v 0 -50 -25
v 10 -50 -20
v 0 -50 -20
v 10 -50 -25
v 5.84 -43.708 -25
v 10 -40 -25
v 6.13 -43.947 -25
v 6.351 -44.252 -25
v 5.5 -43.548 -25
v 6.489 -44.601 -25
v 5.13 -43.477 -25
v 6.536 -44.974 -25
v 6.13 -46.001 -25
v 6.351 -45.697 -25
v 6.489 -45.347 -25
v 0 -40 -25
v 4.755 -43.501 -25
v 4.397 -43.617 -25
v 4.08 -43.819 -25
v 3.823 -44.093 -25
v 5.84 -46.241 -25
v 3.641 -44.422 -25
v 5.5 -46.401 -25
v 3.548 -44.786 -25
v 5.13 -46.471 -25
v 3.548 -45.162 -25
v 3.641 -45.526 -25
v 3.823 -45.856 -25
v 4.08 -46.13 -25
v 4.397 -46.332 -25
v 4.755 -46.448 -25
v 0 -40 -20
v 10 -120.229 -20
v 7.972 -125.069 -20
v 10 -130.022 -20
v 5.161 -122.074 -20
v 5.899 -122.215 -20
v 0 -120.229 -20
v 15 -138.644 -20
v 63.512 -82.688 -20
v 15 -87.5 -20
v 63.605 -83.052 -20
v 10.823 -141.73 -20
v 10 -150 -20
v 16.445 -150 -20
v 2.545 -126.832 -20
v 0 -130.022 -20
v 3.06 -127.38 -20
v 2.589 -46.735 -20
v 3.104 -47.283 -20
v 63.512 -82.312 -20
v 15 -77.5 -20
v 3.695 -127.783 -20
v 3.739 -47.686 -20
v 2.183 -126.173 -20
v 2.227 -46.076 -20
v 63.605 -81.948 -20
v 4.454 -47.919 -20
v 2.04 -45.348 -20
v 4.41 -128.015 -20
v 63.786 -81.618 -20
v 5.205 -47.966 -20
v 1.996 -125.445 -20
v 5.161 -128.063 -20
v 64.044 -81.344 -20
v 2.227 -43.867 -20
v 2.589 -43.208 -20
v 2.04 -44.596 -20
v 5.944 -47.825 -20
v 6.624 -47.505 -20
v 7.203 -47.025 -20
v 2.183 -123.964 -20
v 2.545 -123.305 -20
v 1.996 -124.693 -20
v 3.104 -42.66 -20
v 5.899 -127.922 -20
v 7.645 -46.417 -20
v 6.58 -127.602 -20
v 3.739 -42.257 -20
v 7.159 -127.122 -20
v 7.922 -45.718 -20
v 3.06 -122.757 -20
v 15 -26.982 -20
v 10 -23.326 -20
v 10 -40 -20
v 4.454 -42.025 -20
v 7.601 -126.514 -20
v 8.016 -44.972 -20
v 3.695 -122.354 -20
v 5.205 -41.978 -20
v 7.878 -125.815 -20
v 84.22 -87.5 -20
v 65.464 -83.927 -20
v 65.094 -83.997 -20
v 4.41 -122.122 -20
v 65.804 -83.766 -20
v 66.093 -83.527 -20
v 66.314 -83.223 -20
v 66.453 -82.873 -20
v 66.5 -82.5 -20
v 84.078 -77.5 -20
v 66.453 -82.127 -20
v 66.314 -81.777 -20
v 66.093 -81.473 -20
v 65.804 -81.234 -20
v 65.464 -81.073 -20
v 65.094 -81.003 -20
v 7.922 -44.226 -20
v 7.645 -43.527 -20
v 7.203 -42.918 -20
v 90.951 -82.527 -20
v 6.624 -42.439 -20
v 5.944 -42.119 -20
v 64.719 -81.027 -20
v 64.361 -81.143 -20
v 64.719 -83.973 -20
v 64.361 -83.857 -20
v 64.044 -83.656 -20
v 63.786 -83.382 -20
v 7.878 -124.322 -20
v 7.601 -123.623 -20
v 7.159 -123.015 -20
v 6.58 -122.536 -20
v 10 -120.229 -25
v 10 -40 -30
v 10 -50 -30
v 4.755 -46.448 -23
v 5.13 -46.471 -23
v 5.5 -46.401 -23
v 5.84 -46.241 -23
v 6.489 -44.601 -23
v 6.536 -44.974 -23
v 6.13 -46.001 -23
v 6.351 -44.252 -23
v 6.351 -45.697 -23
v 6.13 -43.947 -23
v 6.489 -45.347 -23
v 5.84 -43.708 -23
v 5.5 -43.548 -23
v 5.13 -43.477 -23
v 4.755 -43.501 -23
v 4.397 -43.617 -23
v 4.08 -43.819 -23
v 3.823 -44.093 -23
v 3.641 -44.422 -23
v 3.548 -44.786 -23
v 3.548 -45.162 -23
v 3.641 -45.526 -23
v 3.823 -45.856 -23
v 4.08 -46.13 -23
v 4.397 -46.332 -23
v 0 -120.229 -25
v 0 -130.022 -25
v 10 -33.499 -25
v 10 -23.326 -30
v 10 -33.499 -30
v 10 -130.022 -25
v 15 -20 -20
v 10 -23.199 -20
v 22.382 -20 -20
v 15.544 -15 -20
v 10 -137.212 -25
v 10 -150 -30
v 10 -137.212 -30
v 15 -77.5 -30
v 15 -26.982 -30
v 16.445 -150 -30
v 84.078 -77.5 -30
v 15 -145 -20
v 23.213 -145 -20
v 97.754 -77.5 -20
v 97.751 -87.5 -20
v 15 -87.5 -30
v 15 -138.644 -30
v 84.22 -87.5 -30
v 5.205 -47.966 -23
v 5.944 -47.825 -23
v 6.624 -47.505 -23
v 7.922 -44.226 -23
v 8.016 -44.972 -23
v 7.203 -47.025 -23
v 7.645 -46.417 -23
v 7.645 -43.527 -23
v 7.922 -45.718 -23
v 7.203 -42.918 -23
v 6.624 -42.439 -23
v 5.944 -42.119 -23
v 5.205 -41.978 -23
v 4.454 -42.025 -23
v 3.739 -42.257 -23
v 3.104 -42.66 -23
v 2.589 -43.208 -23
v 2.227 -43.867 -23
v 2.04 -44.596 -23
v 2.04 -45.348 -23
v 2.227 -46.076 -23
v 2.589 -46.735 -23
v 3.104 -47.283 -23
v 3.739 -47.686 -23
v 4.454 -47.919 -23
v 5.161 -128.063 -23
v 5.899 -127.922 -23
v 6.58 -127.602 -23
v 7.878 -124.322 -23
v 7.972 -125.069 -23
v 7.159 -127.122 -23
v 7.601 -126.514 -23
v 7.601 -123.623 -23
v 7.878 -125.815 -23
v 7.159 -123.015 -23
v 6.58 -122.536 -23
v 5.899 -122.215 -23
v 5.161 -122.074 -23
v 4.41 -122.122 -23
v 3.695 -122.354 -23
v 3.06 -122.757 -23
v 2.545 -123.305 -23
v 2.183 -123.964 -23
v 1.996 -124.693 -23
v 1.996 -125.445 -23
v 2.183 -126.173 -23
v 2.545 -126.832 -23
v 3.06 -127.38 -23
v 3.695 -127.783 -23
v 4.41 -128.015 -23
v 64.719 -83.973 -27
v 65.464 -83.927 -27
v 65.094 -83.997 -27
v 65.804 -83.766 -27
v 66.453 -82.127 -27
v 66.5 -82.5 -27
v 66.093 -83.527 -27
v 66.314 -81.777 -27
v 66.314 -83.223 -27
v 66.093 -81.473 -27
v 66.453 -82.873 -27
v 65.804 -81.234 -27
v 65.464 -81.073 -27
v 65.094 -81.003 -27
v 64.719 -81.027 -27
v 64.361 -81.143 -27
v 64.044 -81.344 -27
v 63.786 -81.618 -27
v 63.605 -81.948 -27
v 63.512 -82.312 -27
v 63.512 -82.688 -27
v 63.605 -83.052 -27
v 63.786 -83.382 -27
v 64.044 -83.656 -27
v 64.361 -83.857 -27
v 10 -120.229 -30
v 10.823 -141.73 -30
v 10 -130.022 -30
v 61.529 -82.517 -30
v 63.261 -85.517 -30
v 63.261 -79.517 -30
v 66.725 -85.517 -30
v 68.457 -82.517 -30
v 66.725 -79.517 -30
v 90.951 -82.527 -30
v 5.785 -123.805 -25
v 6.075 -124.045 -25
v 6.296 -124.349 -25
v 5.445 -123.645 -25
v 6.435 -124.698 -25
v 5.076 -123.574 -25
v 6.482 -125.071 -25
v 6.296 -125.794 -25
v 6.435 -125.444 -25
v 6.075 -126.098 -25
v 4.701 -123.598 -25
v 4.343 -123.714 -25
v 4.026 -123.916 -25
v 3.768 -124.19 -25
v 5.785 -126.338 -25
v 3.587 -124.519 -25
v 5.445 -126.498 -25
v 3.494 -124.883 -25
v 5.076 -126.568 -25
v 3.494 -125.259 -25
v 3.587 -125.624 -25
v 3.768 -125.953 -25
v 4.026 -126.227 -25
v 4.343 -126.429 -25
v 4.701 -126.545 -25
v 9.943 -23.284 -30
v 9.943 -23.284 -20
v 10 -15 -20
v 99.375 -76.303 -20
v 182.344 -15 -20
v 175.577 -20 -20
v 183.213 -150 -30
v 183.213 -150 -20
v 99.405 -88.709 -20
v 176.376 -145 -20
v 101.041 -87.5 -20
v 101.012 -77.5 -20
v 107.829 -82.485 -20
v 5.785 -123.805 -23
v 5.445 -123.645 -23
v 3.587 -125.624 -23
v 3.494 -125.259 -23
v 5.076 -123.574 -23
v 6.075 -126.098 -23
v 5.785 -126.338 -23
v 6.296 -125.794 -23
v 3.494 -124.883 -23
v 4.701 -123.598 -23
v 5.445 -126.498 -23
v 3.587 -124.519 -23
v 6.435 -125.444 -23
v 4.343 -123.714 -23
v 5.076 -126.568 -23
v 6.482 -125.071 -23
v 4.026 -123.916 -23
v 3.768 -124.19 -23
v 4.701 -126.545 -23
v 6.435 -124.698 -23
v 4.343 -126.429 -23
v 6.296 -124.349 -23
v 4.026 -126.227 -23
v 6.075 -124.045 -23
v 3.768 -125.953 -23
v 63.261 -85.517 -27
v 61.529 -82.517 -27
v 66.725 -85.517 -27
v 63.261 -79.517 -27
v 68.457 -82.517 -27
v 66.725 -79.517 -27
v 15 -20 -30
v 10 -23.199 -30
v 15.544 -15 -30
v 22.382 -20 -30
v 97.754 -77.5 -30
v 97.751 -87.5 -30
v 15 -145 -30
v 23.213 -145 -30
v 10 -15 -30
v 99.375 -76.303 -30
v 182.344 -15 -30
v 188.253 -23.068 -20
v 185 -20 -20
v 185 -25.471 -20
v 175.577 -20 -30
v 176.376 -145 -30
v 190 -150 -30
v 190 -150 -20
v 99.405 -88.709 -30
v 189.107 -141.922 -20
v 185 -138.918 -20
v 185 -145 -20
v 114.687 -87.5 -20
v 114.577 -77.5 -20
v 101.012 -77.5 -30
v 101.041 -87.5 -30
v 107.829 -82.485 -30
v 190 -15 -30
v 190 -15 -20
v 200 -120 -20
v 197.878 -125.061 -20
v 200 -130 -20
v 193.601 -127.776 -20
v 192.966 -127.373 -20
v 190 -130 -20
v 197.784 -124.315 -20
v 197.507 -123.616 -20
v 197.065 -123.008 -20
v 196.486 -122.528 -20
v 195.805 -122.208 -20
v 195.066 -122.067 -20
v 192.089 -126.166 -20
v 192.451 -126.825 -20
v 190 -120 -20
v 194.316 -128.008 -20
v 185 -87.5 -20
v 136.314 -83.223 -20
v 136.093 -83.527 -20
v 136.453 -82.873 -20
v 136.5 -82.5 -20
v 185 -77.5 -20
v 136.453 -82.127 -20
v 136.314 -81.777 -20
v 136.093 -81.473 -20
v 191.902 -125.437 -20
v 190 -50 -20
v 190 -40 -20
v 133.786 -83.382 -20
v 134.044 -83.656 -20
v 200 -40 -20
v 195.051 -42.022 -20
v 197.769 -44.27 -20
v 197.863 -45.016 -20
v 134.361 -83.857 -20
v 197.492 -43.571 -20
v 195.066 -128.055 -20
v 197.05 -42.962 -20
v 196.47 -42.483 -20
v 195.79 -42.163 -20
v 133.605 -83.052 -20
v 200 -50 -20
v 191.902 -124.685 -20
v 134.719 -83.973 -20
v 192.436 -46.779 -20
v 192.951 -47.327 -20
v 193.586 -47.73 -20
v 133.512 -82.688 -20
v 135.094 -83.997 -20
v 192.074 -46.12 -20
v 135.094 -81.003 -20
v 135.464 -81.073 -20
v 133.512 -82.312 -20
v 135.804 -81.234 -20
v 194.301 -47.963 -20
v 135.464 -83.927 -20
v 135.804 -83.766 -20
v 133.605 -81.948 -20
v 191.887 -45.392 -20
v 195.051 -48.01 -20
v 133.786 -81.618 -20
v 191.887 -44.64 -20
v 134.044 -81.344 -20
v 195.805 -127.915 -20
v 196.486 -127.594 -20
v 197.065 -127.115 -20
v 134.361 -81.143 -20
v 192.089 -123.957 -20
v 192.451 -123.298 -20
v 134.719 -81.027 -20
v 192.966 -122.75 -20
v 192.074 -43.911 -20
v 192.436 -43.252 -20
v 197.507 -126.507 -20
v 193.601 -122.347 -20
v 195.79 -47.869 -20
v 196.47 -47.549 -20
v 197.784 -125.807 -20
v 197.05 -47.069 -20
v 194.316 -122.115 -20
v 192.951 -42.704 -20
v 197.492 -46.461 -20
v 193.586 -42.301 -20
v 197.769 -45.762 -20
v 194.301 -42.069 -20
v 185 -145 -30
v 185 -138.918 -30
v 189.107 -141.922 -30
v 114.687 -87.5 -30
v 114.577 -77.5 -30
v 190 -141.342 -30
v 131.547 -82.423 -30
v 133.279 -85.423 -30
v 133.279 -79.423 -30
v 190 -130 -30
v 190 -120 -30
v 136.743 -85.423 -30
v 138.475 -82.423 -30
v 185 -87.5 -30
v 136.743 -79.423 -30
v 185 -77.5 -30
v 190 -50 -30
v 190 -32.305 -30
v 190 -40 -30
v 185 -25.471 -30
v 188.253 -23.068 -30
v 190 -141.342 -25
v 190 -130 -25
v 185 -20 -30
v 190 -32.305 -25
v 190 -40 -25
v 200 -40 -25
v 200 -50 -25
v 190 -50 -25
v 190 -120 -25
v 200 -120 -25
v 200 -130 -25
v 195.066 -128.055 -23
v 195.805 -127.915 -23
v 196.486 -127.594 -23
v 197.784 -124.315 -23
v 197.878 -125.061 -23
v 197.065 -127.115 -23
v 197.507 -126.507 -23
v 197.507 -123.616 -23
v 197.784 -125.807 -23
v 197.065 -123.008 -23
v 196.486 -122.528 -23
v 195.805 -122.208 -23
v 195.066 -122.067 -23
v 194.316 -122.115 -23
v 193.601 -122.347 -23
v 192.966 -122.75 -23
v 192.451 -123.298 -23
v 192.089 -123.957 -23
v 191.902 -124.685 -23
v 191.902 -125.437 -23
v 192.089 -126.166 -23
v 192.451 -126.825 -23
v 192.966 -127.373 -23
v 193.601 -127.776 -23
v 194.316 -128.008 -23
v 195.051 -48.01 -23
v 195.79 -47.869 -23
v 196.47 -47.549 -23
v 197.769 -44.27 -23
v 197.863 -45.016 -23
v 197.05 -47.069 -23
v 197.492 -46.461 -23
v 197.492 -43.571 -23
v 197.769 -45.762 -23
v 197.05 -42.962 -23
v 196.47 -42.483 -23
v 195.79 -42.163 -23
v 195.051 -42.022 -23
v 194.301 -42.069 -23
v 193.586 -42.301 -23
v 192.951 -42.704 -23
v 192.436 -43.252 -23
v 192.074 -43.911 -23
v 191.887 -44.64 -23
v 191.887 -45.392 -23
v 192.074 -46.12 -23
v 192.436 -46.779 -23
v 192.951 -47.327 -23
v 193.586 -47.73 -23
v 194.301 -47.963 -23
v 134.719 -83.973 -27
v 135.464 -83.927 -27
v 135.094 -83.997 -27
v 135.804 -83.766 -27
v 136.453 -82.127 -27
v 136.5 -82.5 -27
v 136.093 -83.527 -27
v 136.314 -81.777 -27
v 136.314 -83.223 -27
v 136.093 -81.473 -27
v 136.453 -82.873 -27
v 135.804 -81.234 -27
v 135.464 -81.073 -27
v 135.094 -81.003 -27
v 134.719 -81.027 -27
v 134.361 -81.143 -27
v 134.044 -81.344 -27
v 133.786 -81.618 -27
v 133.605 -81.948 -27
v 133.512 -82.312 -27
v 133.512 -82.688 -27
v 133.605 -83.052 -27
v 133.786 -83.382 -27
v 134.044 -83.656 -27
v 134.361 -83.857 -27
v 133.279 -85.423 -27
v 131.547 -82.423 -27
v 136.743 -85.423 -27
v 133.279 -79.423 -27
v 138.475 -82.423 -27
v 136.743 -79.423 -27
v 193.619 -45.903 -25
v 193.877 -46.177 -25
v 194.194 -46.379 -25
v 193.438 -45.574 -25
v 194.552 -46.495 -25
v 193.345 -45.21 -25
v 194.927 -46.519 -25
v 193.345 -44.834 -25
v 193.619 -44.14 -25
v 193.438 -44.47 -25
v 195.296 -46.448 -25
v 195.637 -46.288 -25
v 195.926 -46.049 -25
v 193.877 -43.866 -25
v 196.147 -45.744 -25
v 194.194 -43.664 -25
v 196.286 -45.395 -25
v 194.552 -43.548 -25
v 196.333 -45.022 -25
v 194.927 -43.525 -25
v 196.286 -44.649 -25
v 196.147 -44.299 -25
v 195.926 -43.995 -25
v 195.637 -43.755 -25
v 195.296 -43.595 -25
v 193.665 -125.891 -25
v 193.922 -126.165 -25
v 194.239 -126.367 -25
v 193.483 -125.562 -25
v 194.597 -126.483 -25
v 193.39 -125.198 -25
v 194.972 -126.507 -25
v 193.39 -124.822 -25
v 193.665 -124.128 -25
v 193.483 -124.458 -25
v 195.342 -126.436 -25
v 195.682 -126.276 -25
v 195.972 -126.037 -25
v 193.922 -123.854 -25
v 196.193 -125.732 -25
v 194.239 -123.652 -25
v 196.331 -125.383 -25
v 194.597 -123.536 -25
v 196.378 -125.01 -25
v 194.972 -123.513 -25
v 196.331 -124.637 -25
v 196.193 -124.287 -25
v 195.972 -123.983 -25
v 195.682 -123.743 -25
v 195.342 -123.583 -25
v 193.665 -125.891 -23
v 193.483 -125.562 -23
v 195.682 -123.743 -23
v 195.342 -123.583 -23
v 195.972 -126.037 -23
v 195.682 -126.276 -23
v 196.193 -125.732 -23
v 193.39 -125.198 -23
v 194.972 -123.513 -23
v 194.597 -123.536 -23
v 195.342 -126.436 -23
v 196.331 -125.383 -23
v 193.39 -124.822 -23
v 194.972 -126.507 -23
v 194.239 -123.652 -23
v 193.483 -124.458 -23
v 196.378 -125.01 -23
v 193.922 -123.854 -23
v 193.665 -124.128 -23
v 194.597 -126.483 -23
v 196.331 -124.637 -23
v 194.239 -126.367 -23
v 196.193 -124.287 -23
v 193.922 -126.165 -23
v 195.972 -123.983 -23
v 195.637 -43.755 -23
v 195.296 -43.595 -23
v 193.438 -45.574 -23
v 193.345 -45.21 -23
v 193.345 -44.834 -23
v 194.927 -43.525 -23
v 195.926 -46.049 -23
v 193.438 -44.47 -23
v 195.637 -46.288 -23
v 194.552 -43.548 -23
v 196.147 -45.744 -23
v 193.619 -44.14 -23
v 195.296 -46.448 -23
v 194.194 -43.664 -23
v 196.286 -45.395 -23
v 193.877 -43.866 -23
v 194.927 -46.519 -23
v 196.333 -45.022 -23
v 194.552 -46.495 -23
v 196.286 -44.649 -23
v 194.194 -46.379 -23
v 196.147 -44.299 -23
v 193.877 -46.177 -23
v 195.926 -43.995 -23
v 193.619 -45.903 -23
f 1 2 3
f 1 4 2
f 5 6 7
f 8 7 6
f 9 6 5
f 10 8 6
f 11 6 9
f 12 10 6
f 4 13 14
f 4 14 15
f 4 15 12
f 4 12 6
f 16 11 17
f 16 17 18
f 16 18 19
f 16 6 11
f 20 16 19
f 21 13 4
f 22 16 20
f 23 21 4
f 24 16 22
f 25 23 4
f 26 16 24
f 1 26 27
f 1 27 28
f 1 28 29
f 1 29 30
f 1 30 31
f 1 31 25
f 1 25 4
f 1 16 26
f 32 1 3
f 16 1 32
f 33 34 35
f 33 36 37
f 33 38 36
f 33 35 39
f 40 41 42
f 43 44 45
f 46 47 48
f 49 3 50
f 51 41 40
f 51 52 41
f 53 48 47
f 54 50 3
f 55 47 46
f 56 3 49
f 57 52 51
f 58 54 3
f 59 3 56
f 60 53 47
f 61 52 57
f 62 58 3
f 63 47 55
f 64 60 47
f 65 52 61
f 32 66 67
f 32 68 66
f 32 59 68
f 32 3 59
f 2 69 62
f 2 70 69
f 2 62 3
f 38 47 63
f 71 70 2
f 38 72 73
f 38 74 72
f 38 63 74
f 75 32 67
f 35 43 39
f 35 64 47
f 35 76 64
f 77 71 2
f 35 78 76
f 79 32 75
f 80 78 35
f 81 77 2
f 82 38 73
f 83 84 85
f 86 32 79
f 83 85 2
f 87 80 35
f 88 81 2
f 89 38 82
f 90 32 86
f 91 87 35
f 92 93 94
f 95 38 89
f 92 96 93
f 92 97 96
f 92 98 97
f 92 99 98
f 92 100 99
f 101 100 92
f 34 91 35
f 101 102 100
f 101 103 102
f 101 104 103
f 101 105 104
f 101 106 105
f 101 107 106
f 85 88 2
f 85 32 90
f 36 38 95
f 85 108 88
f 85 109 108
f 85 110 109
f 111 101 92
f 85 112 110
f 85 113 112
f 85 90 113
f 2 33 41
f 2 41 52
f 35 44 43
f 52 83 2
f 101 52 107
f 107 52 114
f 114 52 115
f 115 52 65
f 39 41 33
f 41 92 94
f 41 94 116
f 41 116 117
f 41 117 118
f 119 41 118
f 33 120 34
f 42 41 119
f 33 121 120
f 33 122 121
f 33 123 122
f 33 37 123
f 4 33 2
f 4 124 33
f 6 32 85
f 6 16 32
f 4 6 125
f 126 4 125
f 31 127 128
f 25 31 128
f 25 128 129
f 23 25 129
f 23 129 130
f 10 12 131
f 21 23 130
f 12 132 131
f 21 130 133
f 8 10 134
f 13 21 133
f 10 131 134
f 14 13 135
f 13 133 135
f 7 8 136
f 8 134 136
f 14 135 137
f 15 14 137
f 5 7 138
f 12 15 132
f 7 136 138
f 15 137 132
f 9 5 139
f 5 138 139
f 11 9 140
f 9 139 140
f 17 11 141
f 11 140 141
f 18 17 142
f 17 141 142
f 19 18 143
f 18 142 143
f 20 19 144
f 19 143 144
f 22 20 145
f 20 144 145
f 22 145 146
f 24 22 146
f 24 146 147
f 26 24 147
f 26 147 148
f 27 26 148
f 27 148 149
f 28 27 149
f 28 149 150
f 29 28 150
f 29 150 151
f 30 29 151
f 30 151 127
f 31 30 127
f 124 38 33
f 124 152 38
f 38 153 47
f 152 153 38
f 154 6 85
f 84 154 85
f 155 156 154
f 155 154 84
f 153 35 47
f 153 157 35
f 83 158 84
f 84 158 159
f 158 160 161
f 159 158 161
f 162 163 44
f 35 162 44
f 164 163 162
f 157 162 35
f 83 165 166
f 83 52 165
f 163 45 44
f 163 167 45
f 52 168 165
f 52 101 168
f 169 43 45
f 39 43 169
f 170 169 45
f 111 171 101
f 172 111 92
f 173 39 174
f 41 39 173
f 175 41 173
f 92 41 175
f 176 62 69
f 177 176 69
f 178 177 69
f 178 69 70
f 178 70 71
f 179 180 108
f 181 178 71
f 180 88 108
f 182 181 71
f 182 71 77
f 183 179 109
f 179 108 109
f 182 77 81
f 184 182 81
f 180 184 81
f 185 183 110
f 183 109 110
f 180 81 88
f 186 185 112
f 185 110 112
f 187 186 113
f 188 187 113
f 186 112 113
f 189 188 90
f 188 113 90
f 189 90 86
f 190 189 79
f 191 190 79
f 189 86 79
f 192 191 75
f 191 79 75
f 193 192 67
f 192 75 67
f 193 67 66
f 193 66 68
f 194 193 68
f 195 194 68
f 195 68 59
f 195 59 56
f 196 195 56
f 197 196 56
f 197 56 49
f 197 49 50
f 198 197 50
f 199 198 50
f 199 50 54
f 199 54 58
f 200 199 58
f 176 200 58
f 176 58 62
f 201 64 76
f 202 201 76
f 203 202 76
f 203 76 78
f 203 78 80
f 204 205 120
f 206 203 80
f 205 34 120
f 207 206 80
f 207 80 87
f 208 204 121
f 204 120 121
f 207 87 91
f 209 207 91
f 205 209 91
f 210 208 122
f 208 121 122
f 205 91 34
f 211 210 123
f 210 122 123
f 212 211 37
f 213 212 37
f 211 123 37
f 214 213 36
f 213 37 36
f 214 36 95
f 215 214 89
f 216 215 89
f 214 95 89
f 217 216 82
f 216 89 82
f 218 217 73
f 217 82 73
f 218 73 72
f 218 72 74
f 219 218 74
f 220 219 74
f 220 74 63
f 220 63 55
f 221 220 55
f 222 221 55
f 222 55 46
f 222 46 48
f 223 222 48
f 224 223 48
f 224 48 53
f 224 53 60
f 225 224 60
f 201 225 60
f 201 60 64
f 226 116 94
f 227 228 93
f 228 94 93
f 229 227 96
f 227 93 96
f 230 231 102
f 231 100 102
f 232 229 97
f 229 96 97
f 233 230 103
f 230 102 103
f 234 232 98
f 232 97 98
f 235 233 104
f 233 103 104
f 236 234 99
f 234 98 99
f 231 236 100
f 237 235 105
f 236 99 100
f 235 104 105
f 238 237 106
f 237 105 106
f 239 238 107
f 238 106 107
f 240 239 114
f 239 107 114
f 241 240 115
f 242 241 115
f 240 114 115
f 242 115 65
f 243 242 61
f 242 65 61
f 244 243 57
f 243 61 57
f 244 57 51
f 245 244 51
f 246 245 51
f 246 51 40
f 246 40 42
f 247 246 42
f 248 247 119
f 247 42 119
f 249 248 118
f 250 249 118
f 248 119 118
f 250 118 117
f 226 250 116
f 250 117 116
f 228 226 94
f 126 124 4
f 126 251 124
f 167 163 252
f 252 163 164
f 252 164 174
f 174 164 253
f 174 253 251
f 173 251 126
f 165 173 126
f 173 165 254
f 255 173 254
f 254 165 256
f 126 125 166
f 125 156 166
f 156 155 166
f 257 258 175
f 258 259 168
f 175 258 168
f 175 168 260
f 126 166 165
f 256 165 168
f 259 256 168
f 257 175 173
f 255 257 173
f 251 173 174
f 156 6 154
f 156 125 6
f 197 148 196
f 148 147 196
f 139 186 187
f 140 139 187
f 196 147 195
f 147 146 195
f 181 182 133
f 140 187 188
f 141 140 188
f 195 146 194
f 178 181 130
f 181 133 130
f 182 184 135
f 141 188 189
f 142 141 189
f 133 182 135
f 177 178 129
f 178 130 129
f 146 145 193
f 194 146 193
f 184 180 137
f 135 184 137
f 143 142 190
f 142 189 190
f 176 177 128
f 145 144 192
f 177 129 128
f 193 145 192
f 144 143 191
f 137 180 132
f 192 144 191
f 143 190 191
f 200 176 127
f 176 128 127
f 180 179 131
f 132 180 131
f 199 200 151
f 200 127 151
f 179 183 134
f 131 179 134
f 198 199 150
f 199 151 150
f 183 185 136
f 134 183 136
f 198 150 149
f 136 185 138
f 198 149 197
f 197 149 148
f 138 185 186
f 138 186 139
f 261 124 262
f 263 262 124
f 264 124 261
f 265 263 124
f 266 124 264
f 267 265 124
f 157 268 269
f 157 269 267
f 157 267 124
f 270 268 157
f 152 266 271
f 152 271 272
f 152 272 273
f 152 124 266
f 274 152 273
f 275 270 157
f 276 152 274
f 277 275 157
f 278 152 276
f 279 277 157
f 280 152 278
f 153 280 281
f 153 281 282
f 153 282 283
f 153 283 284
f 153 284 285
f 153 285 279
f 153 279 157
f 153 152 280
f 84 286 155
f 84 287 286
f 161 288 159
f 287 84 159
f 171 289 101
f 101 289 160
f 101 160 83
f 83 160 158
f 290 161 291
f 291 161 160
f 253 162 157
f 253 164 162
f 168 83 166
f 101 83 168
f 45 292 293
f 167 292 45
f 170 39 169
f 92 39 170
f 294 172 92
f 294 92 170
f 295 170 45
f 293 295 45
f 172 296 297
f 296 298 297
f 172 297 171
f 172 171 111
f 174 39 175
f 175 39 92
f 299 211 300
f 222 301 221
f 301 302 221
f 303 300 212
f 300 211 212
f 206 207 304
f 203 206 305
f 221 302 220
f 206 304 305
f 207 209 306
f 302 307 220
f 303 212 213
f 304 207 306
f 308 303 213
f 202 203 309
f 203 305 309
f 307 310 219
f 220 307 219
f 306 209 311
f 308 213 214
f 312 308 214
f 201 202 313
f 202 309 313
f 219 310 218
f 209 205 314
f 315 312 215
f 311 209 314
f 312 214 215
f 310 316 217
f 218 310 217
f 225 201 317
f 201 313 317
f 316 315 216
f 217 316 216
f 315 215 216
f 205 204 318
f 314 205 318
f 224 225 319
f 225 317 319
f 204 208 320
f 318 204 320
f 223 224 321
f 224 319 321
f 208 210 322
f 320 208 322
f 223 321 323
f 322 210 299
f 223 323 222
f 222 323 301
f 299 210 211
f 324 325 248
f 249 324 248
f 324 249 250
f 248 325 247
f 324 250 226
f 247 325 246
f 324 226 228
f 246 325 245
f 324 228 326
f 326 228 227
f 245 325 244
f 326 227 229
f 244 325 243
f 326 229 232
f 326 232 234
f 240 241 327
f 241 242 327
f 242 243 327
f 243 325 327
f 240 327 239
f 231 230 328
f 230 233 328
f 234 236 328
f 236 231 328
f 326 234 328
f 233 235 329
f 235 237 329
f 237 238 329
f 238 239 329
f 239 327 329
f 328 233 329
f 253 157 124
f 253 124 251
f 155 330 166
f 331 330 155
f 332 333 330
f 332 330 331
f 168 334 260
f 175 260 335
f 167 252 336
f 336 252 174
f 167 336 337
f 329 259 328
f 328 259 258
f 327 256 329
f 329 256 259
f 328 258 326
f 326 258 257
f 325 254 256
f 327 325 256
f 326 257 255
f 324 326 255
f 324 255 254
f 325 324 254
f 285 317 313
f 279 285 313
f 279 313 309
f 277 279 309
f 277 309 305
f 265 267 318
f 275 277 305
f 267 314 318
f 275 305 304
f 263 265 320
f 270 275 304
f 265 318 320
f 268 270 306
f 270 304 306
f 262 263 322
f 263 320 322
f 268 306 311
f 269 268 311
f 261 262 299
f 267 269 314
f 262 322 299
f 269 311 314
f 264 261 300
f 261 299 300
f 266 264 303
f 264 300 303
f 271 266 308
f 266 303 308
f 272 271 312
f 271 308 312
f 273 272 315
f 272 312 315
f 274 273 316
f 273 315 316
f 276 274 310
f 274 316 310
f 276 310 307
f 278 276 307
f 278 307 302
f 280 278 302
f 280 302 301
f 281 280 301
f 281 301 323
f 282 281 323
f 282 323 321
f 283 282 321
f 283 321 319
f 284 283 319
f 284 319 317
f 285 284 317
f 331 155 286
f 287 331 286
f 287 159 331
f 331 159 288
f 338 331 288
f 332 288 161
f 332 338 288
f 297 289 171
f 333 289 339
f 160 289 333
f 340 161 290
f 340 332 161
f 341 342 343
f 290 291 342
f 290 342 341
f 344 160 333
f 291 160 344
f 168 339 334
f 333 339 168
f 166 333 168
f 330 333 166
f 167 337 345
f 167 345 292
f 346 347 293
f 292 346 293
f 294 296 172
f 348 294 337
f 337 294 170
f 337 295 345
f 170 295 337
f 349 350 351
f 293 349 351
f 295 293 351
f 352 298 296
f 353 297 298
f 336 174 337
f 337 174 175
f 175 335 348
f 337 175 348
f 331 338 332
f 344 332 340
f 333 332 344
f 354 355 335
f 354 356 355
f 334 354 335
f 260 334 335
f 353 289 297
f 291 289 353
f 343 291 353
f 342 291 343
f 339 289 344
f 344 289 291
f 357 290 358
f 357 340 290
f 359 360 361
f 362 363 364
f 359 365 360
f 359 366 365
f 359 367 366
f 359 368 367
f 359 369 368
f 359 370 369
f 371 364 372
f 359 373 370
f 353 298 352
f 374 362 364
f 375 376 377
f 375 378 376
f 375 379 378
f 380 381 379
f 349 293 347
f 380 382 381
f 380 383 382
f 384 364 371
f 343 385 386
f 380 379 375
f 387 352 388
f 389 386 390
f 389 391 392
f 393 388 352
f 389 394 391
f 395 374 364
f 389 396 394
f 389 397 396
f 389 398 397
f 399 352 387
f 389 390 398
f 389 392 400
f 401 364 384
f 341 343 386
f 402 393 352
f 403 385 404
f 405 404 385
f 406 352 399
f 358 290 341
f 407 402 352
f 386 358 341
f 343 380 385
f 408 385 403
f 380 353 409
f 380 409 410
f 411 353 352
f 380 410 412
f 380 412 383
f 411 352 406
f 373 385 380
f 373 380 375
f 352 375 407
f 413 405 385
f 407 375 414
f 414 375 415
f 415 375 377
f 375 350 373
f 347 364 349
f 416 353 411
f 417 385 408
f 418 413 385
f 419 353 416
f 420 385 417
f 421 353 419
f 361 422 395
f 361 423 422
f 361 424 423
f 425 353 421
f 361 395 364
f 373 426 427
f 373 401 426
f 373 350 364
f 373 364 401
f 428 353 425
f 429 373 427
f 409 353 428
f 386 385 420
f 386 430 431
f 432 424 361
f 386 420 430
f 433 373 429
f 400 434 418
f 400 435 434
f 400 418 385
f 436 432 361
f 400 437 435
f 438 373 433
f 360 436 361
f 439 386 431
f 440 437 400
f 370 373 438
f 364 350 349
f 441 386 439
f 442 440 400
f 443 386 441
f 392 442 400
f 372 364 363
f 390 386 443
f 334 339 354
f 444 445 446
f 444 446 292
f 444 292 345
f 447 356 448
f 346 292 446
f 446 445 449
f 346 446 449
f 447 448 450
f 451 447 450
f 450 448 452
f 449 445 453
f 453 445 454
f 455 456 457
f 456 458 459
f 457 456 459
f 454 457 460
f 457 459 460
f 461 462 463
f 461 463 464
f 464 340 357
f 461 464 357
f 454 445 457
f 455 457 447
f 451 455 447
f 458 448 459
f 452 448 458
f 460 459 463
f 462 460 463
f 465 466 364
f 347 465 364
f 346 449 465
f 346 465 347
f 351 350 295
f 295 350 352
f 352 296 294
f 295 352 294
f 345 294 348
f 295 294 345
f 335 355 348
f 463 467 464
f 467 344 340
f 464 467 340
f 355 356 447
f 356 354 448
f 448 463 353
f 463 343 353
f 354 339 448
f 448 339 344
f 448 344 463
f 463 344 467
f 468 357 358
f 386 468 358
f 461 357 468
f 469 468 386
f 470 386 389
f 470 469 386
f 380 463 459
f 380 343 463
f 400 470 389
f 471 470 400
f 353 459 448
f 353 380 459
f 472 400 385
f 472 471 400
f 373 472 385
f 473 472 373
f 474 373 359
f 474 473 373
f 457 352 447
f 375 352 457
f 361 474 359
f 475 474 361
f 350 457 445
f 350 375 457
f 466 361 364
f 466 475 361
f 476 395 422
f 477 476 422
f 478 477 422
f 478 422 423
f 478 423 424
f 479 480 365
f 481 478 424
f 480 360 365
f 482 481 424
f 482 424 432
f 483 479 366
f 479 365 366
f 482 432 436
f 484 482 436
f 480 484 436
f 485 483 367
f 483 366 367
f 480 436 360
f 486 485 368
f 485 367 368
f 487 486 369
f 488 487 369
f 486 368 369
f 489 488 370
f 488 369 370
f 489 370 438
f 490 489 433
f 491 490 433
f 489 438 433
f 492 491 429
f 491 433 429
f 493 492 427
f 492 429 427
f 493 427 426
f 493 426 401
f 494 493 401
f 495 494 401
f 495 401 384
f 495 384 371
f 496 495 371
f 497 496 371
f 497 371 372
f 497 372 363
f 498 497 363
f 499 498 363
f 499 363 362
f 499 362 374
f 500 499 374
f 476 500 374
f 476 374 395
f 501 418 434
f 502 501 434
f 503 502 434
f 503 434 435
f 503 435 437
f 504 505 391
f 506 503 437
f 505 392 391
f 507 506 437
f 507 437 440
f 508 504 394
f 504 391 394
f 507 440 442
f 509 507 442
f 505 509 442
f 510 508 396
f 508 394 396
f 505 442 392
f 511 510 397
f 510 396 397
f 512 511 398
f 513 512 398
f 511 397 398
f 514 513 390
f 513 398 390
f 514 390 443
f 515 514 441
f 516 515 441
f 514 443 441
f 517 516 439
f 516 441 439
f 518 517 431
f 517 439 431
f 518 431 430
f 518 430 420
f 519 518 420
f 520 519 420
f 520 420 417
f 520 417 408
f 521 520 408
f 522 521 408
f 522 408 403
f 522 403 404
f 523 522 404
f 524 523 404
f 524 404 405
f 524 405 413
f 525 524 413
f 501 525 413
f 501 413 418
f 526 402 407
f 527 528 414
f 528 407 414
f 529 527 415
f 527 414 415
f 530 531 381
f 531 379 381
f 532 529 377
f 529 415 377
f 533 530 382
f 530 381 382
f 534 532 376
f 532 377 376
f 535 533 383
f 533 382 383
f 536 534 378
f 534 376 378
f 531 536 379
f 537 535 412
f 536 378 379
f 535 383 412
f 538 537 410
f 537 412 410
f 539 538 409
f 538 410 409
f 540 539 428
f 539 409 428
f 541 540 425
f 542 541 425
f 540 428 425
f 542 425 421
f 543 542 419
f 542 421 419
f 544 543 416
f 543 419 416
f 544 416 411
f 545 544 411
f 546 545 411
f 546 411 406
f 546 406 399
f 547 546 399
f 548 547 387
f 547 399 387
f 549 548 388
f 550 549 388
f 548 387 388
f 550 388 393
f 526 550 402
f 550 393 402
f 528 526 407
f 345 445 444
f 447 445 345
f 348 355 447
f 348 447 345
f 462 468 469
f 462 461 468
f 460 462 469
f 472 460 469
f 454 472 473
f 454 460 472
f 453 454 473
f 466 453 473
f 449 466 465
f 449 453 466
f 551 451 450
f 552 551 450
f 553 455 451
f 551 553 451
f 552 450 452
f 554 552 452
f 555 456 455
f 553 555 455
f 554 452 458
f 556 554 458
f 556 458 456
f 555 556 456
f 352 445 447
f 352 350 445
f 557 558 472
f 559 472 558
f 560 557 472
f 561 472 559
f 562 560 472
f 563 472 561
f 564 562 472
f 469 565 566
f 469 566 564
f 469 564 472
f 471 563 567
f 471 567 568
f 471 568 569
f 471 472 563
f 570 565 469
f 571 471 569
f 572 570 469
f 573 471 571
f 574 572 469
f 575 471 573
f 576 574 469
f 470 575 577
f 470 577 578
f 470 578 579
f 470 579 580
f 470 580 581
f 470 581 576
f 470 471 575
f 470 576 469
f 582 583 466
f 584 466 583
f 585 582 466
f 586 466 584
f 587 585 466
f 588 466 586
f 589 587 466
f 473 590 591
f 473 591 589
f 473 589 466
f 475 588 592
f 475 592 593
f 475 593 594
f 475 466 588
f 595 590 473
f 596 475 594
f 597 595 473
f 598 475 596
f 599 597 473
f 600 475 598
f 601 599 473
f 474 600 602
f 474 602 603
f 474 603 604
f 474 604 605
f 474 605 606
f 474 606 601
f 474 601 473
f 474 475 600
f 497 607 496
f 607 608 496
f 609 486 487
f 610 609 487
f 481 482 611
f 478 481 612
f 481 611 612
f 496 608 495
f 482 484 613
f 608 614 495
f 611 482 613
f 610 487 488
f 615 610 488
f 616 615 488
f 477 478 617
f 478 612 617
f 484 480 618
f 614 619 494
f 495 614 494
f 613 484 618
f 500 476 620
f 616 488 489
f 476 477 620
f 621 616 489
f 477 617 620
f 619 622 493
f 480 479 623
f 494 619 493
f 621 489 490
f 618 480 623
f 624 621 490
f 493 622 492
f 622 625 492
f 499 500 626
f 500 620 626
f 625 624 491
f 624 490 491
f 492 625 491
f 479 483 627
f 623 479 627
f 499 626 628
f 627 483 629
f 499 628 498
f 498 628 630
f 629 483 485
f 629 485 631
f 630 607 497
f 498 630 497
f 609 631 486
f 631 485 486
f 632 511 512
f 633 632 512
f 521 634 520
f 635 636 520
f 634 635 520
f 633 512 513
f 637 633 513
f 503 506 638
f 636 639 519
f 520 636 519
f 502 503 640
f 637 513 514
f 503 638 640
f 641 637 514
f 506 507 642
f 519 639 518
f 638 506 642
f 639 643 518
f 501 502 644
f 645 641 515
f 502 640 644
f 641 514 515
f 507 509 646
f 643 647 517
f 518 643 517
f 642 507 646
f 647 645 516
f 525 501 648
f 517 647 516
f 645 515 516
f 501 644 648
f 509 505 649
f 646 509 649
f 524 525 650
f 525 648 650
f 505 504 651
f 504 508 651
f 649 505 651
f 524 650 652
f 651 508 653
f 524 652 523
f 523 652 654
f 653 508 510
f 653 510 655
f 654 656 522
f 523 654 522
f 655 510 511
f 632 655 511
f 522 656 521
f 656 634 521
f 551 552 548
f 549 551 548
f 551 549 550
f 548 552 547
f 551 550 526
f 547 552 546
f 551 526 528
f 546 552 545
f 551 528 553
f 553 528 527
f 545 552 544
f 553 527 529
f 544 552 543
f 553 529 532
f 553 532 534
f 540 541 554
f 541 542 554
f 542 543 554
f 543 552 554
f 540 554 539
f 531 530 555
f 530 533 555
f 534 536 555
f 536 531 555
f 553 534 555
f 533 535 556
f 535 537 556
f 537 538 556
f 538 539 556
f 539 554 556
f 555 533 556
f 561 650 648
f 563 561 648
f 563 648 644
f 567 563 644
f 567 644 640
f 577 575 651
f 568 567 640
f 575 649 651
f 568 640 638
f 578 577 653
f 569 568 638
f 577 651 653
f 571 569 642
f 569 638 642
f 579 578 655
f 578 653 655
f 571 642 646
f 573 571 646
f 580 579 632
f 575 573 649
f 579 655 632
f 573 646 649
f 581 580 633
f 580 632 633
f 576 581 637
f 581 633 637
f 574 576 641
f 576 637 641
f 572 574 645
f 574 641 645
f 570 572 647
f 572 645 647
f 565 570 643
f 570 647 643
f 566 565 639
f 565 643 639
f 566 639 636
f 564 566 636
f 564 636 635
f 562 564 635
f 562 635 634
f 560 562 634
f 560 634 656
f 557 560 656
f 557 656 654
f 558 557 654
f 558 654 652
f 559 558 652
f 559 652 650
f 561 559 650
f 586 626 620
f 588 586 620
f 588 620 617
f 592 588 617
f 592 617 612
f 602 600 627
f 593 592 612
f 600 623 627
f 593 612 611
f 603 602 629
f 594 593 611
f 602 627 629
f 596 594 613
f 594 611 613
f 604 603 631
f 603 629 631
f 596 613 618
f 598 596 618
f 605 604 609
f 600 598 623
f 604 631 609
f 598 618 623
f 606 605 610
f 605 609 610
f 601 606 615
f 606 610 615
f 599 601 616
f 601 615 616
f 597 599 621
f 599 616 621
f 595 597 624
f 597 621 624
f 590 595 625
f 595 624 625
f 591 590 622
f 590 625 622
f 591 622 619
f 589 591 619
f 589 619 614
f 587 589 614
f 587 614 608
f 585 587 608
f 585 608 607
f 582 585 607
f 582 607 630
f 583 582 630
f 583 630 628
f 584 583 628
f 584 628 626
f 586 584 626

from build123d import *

# Parameters (mm, degrees)
PAD002_DEPTH    = 10
SKETCH005_R     = 1.5
SKETCH005_W     = 170
SKETCH005_H     = 57.5
POCKET002_DEPTH = 11
PAD003_DEPTH    = 10
PAD004_DEPTH    = 10
POCKET003_DEPTH = 3
SKETCH009_W     = 103.713421
SKETCH009_H     = 5
POCKET004_DEPTH = 10
SKETCH010_W     = 109.037471
SKETCH010_H     = 5
POCKET005_DEPTH = 10
SKETCH011_R     = 1.5
POCKET006_DEPTH = 5
SKETCH012_R     = 3
POCKET007_DEPTH = 3


with BuildPart() as part:
    # Sketch004 → Pad002 (new body)
    with BuildSketch(Plane.XY.offset(-30)):
        Polygon((10, -50), (0, -50), (0, -40), (10, -40), (10, -15), (190, -15), (190, -40), (200, -40), (200, -50), (190, -50), (190, -120), (200, -120), (200, -130), (190, -130), (190, -150), (10, -150), (10, -130.022141), (0, -130.022141), (0, -120.229309), (10, -120.229309), align=None)
    extrude(amount=PAD002_DEPTH)

    # Sketch005 → Pocket002 (cut)
    with BuildSketch(Plane.XY.offset(-20)):
        with Locations((65, -82.5)):
            Circle(SKETCH005_R)
        with Locations((135, -82.5)):
            Circle(SKETCH005_R)
        with Locations((100, -48.75)):
            Rectangle(SKETCH005_W, SKETCH005_H)
        with Locations((100, -116.25)):
            Rectangle(SKETCH005_W, SKETCH005_H)
    extrude(amount=-POCKET002_DEPTH, mode=Mode.SUBTRACT)

    # Sketch006 → Pad003 (new body)
    with BuildSketch(Plane.XY.offset(-20)):
        Polygon((15.544486, -15), (9.942795, -23.283783), (183.213308, -150), (189.107285, -141.92157), align=None)
    extrude(amount=-PAD003_DEPTH)

    # Sketch007 → Pad004 (new body)
    with BuildSketch(Plane.XY.offset(-20)):
        Polygon((16.445199, -150), (10.823256, -141.729948), (182.344322, -15), (188.253036, -23.067658), align=None)
    extrude(amount=-PAD004_DEPTH)

    # Sketch008 → Pocket003 (cut)
    with BuildSketch(Plane(origin=(0, 0, -30), x_dir=(1, 0, 0), z_dir=(0, 0, -1))):
        Polygon((66.72504, 85.516563), (63.260938, 85.516563), (61.528887, 82.516563), (63.260938, 79.516563), (66.72504, 79.516563), (68.457091, 82.516563), align=None)
        Polygon((136.743449, 85.423233), (133.279347, 85.423233), (131.547296, 82.423233), (133.279347, 79.423233), (136.743449, 79.423233), (138.4755, 82.423233), align=None)
    extrude(amount=-POCKET003_DEPTH, mode=Mode.SUBTRACT)

    # Sketch009 → Pocket004 (cut)
    with BuildSketch(Plane(origin=(0, 0, -30), x_dir=(0, -1, 0), z_dir=(-1, 0, 0))):
        with Locations((85.35563, 2.5)):
            Rectangle(SKETCH009_W, SKETCH009_H)
    extrude(amount=-POCKET004_DEPTH, mode=Mode.SUBTRACT)

    # Sketch010 → Pocket005 (cut)
    with BuildSketch(Plane(origin=(200, 0, -30), x_dir=(0, 1, 0), z_dir=(1, 0, 0))):
        with Locations((-86.823625, 2.5)):
            Rectangle(SKETCH010_W, SKETCH010_H)
    extrude(amount=-POCKET005_DEPTH, mode=Mode.SUBTRACT)

    # Sketch011 → Pocket006 (cut)
    with BuildSketch(Plane.XY.offset(-20)):
        with Locations((5.036074, -44.974274)):
            Circle(SKETCH011_R)
        with Locations((4.981705, -125.071396)):
            Circle(SKETCH011_R)
        with Locations((194.832825, -45.021729)):
            Circle(SKETCH011_R)
        with Locations((194.878098, -125.009697)):
            Circle(SKETCH011_R)
    extrude(amount=-POCKET006_DEPTH, mode=Mode.SUBTRACT)

    # Sketch012 → Pocket007 (cut)
    with BuildSketch(Plane.XY.offset(-20)):
        with Locations((5.016462, -44.97184)):
            Circle(SKETCH012_R)
        with Locations((4.972344, -125.06855)):
            Circle(SKETCH012_R)
        with Locations((194.878128, -125.061401)):
            Circle(SKETCH012_R)
        with Locations((194.862854, -45.015846)):
            Circle(SKETCH012_R)
    extrude(amount=-POCKET007_DEPTH, mode=Mode.SUBTRACT)


solid = part.part
